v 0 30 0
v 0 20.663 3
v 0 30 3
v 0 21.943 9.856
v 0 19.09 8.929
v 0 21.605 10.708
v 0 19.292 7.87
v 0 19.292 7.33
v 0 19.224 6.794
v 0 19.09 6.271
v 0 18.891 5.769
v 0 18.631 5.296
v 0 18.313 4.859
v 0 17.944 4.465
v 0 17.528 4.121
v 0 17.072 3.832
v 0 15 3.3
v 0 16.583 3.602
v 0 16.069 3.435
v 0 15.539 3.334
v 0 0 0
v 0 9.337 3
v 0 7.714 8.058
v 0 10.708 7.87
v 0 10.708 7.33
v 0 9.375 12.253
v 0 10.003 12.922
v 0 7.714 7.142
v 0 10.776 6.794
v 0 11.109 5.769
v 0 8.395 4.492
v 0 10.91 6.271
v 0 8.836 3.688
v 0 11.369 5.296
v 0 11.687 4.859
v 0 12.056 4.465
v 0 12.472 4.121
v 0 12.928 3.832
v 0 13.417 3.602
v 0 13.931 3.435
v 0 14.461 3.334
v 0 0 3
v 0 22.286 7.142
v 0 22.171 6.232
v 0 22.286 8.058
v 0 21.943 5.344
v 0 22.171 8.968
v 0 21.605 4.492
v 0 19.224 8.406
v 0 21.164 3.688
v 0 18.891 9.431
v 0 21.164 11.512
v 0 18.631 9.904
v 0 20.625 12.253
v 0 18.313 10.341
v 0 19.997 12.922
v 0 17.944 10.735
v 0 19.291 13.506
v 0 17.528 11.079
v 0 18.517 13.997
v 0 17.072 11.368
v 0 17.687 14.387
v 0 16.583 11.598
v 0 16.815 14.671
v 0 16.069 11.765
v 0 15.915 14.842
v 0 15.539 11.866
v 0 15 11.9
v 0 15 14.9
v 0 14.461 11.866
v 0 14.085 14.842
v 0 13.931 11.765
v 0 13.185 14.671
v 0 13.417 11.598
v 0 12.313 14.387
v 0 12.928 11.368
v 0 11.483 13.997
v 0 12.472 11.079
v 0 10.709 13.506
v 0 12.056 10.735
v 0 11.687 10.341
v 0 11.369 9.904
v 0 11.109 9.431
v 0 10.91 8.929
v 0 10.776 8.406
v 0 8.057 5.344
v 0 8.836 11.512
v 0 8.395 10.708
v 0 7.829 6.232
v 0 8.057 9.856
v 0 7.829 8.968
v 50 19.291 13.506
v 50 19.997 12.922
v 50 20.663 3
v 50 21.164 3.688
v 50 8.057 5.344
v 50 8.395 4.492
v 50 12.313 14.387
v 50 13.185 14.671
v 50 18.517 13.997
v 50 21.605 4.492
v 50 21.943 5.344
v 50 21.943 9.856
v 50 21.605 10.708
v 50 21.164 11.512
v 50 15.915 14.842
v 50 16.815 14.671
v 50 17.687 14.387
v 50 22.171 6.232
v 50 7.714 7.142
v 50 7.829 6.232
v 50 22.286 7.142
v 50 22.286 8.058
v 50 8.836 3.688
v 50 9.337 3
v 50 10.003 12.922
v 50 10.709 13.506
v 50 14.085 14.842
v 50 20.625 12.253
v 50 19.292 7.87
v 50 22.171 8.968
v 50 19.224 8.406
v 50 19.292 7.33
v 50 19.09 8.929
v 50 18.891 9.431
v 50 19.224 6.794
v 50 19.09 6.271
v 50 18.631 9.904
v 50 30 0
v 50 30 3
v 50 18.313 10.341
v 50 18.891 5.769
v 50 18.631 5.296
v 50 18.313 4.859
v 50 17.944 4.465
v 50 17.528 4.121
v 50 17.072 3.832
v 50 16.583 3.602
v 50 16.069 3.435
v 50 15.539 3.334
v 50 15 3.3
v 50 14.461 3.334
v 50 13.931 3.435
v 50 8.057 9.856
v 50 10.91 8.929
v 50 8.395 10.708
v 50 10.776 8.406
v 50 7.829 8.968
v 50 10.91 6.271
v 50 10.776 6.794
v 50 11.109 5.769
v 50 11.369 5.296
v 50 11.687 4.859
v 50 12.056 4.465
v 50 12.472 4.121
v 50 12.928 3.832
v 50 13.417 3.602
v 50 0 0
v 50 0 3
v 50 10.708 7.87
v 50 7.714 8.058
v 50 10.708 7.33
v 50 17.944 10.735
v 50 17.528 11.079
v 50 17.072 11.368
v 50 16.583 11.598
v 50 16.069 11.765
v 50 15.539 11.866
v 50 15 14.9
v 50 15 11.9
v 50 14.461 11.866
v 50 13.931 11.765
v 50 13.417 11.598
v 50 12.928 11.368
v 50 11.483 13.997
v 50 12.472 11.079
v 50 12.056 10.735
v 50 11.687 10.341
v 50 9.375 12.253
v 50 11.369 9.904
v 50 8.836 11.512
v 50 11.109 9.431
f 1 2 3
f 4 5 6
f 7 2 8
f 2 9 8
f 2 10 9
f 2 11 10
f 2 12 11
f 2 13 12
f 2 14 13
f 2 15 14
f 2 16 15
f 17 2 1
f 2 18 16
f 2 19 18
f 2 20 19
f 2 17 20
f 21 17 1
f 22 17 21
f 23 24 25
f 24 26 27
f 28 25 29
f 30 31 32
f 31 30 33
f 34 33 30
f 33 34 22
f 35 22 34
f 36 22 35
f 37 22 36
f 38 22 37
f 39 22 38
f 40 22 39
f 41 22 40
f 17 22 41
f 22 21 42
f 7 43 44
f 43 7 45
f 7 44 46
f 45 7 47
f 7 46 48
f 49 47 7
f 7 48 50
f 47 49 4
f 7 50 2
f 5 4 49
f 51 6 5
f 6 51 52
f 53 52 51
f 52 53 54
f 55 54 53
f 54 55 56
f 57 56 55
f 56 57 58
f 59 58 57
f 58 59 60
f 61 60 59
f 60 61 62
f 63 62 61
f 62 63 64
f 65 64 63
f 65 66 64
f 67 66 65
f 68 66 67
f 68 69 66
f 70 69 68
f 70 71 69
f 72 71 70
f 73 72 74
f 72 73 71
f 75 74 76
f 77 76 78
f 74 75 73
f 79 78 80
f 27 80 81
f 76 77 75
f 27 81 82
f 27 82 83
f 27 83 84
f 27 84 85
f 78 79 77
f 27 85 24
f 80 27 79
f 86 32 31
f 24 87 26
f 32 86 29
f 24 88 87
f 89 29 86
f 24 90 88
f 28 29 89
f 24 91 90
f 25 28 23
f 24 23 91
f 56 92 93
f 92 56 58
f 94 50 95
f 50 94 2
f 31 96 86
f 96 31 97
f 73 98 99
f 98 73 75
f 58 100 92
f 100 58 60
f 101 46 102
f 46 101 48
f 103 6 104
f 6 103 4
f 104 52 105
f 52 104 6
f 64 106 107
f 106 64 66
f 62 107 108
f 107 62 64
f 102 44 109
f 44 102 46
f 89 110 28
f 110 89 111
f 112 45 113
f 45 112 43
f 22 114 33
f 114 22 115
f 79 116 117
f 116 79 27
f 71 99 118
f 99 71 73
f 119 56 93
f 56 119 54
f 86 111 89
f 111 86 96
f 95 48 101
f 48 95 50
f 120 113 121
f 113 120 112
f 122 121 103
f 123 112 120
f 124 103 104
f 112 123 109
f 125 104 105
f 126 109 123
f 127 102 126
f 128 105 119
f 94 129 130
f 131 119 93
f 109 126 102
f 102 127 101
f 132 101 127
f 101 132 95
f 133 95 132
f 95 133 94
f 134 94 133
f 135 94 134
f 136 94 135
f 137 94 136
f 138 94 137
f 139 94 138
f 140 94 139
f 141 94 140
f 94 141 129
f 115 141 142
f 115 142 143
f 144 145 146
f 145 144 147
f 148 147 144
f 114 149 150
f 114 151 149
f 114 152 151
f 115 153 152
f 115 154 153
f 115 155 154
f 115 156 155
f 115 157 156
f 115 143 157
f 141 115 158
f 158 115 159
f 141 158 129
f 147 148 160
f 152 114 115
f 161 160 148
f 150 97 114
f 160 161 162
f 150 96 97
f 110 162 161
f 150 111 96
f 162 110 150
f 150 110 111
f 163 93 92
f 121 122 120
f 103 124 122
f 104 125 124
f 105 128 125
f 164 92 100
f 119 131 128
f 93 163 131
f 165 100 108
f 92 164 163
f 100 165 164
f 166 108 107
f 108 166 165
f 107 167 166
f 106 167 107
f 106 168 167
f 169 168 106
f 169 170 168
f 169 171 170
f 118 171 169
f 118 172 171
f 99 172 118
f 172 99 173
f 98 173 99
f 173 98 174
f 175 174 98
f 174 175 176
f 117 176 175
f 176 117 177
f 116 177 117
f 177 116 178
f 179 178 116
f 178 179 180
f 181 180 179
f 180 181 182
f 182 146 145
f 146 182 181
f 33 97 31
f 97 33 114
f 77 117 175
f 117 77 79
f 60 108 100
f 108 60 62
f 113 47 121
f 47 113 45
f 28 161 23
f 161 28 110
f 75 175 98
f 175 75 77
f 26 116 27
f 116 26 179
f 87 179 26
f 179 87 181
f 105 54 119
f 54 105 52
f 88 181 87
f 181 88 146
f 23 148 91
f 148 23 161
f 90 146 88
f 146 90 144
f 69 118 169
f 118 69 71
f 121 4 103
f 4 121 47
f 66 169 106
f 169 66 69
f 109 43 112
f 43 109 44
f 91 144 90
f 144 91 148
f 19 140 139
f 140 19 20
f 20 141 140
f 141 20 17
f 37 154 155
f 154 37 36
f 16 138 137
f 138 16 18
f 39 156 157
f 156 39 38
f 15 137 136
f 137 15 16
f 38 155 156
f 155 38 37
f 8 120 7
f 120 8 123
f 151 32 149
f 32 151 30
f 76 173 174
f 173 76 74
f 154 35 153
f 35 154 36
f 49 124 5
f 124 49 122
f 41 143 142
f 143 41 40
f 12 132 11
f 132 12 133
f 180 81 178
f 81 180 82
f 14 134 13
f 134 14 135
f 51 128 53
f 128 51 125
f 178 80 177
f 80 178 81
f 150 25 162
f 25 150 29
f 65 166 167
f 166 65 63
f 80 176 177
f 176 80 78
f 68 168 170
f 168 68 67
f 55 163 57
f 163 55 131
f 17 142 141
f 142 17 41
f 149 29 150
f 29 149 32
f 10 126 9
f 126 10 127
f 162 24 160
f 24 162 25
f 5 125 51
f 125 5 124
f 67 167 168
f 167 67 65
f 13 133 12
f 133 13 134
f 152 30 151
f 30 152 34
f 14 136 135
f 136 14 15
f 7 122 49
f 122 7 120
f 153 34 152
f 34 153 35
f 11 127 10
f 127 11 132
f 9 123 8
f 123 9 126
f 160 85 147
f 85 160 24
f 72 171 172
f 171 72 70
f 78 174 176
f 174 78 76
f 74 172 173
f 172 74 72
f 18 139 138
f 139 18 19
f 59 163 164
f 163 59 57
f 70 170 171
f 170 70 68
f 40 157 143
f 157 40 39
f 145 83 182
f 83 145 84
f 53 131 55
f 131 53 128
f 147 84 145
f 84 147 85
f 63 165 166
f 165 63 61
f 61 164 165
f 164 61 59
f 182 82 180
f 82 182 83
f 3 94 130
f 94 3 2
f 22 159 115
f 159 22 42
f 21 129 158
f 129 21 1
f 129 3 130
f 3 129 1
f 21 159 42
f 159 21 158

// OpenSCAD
$fn = 50;

length = 50;
width = 30;
height = 3;
diameter = 8.6;


cube([length, width, height], false);

translate([0, width/2, diameter-1]) {
     rotate(a=90, v=[0,1,0]) {
          difference() {
               cylinder(h=length, d=diameter+2*height, center=false);
               cylinder(h=length, d=diameter, center=false);
          }
     }
}
